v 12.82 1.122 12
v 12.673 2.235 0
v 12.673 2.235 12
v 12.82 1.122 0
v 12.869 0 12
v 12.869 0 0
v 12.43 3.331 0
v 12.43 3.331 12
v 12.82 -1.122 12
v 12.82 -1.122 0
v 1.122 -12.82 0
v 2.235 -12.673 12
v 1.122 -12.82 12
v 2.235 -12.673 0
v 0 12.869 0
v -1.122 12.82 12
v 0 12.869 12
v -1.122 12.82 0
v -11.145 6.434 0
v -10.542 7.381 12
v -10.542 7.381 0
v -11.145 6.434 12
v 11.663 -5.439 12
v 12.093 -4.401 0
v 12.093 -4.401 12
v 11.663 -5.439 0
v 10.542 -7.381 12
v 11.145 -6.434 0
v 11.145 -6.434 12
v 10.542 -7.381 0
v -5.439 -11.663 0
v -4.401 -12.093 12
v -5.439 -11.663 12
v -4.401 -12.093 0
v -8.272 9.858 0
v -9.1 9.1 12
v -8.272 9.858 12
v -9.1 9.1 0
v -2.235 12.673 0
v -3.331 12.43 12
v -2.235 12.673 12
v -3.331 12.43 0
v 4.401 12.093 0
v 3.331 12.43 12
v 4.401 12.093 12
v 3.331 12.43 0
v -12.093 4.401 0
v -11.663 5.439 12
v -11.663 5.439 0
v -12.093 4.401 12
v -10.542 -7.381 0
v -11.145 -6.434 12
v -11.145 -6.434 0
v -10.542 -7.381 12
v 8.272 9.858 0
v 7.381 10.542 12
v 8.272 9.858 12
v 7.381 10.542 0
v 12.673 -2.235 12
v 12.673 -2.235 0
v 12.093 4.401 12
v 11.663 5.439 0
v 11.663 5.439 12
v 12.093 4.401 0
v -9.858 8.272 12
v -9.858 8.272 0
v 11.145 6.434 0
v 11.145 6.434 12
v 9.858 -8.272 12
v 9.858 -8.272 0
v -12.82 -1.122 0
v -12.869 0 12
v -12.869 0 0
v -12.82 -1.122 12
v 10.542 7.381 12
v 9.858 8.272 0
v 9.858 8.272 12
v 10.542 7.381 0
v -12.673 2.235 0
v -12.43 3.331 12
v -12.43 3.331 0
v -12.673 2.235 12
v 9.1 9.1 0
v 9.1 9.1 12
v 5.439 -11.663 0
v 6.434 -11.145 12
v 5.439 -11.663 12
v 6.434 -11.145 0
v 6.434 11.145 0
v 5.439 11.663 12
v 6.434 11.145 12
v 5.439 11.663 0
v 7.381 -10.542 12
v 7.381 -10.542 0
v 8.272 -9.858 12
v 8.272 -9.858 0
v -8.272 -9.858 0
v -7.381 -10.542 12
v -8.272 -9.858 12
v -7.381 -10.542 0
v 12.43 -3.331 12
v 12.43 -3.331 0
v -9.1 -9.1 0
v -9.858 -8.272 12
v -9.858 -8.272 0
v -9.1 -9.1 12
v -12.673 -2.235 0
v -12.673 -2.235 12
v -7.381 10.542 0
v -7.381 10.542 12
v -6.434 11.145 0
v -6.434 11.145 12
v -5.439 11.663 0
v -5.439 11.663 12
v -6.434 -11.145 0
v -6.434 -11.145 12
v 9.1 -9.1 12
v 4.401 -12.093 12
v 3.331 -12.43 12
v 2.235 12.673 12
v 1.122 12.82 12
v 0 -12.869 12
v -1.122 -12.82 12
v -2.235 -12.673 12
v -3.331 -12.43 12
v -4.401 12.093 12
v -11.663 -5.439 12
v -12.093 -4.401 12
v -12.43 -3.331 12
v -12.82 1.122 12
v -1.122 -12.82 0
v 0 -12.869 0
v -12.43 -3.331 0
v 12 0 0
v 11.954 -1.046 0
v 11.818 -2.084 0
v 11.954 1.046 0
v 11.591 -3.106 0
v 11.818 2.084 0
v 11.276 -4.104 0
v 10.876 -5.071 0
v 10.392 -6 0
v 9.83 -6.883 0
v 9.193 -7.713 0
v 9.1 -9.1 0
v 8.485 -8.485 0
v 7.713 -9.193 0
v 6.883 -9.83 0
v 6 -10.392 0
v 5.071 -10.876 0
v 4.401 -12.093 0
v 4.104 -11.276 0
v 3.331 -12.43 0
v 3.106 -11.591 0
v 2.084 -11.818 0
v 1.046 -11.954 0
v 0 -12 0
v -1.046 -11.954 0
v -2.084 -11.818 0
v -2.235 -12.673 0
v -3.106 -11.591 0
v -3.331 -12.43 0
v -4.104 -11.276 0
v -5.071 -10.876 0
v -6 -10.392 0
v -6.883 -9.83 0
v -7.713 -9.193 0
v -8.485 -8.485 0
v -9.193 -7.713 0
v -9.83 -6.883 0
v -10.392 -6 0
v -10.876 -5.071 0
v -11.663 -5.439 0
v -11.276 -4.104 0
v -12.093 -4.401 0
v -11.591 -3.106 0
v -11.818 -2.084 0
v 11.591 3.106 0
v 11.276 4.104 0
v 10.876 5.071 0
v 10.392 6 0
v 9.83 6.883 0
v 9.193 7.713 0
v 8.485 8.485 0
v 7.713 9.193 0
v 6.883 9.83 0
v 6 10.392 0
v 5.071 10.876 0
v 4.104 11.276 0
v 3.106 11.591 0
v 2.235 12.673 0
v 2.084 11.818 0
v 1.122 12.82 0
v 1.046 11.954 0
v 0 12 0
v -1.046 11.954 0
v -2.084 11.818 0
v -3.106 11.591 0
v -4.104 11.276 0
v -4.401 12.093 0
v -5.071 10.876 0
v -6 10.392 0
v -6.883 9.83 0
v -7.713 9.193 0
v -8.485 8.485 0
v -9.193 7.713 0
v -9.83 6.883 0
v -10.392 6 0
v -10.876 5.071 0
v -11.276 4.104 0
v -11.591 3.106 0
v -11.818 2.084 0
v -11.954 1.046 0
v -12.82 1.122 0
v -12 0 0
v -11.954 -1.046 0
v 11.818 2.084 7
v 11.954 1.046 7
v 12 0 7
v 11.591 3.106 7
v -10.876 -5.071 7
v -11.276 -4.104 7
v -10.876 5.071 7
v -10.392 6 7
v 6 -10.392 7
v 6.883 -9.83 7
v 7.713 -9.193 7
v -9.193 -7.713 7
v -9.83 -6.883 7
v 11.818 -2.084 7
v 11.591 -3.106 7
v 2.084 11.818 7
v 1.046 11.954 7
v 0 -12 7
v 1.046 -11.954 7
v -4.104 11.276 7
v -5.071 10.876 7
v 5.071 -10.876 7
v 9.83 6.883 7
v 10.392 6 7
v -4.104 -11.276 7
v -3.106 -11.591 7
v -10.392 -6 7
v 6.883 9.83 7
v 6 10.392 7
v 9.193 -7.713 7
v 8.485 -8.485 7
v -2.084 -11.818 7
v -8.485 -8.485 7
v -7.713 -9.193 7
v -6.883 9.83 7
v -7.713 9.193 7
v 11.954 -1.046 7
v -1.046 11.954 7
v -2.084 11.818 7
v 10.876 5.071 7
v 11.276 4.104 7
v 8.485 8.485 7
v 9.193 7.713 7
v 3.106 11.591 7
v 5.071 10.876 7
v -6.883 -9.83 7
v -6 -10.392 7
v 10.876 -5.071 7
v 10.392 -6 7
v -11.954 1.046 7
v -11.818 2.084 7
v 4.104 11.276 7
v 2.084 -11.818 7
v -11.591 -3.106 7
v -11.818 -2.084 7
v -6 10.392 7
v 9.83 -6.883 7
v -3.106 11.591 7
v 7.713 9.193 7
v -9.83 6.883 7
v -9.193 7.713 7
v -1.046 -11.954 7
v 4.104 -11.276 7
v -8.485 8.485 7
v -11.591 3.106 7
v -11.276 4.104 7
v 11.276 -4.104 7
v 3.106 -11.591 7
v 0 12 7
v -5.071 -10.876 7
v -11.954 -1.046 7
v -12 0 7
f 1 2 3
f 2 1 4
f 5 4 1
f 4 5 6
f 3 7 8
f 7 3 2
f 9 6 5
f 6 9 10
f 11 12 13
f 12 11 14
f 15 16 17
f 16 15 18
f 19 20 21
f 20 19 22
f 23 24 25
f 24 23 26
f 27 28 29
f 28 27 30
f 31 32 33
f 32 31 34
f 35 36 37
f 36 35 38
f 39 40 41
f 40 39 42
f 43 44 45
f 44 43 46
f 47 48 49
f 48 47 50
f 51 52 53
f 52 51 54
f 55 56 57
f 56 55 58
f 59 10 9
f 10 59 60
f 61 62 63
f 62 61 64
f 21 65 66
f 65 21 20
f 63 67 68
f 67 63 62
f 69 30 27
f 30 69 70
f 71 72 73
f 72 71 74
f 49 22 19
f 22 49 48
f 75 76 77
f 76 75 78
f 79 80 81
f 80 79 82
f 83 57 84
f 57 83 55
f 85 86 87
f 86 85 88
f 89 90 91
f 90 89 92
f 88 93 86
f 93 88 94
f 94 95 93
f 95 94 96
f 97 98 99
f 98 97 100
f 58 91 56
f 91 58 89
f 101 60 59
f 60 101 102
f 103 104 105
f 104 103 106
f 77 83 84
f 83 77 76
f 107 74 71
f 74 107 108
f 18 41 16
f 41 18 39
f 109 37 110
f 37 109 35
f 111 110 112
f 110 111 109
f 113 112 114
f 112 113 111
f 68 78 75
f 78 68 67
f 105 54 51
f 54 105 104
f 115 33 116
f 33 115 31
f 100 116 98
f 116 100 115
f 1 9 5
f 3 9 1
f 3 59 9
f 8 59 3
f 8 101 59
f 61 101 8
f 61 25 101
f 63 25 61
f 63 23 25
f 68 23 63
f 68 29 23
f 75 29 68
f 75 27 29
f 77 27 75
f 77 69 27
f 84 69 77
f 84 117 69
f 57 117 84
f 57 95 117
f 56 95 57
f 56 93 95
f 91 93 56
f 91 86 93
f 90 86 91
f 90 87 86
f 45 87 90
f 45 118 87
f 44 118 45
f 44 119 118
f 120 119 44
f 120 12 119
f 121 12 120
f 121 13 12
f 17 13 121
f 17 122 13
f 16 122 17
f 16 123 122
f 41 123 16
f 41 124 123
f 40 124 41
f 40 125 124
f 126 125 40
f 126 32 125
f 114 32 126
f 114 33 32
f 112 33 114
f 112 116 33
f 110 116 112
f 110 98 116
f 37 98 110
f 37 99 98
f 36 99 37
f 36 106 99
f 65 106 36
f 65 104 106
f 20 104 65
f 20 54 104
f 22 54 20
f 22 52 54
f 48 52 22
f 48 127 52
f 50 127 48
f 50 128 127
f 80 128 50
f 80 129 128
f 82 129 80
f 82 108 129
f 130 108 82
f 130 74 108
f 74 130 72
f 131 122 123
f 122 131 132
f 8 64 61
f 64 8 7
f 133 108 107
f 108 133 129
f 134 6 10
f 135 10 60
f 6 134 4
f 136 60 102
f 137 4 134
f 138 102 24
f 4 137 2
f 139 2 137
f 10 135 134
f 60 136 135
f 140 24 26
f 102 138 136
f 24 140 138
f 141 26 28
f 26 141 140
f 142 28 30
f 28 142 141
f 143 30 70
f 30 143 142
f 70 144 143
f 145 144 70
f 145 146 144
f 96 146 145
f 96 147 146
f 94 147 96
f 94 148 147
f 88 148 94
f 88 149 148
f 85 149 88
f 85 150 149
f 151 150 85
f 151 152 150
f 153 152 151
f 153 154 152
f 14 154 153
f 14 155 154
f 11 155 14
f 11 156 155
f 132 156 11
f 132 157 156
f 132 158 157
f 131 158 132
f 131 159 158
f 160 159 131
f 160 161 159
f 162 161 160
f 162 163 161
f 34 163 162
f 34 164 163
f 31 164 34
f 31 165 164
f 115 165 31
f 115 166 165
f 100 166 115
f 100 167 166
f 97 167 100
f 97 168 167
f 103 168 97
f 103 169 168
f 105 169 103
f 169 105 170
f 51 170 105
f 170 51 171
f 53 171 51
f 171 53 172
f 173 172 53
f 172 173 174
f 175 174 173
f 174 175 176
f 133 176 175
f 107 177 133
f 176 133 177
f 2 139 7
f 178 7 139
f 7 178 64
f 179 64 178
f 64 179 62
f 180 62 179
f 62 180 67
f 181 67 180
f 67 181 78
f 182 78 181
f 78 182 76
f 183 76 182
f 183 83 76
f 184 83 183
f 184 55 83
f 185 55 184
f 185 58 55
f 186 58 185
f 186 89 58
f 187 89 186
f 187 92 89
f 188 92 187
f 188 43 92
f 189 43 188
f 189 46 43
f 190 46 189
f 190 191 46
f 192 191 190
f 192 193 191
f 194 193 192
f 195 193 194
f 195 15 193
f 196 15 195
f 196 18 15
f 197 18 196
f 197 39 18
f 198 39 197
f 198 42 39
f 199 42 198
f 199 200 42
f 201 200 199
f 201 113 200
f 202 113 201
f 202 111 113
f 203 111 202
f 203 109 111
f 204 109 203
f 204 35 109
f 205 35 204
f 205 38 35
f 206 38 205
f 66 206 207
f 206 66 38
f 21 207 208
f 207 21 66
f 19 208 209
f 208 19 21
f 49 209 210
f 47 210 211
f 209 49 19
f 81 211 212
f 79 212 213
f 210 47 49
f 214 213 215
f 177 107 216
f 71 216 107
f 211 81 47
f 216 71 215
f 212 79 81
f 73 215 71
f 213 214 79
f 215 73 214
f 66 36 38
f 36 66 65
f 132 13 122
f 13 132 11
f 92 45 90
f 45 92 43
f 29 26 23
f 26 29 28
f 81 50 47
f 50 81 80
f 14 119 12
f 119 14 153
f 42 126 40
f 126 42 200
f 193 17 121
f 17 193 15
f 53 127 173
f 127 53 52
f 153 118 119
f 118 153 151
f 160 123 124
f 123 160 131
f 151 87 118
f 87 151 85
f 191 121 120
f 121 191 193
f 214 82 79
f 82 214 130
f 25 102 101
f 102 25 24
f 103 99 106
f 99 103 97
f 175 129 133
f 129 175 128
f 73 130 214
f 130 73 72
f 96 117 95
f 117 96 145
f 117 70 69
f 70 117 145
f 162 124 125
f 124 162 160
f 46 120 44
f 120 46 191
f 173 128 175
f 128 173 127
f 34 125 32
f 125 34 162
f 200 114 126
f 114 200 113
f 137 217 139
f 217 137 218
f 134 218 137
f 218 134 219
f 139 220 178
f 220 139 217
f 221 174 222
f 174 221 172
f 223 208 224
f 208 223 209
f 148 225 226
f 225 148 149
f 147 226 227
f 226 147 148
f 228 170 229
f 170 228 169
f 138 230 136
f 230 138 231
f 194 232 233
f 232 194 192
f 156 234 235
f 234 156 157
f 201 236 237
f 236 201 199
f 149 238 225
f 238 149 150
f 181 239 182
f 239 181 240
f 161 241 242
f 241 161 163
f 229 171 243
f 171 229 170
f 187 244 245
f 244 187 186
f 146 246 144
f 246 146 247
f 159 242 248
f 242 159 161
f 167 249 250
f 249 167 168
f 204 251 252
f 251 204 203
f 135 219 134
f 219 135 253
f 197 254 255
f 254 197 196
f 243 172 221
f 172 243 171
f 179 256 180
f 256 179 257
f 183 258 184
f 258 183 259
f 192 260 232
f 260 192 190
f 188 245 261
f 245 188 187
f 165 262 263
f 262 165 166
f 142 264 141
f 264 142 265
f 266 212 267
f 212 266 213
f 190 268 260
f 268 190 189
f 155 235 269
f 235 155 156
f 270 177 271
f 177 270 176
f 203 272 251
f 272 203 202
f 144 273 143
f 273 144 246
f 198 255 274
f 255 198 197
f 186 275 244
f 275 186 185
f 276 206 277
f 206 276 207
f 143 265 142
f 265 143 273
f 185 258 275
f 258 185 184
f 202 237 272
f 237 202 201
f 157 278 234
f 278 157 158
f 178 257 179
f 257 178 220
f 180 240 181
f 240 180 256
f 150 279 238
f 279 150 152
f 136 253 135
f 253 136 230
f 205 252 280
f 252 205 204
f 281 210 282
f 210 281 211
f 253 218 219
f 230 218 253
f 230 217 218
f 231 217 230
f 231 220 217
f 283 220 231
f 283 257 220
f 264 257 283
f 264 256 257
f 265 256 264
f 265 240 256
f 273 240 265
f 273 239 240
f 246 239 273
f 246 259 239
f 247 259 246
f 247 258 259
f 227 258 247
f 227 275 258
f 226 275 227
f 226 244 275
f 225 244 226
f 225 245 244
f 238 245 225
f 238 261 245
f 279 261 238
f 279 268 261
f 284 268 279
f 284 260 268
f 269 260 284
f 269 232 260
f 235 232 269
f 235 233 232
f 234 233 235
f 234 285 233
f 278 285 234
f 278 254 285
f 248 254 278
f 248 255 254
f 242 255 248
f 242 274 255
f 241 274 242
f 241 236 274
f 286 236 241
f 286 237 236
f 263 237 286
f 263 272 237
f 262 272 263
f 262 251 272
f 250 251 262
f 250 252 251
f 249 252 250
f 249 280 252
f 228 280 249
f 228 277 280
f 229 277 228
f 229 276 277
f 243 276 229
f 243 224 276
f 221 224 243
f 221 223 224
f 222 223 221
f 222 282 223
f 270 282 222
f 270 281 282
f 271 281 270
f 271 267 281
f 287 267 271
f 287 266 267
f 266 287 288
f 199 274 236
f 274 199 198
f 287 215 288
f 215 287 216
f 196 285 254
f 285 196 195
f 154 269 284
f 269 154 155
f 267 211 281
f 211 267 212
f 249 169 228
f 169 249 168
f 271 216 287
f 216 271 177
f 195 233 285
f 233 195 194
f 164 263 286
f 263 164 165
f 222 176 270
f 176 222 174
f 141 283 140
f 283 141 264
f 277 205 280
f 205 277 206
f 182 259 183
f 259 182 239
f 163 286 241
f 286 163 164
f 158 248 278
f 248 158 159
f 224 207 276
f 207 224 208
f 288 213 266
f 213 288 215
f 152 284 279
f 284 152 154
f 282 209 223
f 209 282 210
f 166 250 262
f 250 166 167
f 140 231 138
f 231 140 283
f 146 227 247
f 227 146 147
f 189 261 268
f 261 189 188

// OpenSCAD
rod_width = 24;
rod_extender_width = 2;
rod_extender_extend_len = 5;
rod_extender_cross_len  = 7;

filament_thickness = 1.75;
anti_warp = .15;

$fs = $preview ? 2 : 0.5;
$fa = $preview ? 15 : 5;

function anti_warp_widen(v) = v + ((filament_thickness * anti_warp));
function anti_warp_shrink(v) = v - ((filament_thickness * anti_warp));

module inner_cyl(height) {
	assert(height > 0);
	cylinder(h = height, d = rod_width);
}

module outer_cyl(height) {
	assert(height > 0);
	cylinder(h = height, d = anti_warp_shrink(rod_width + rod_extender_width));
}

module tube_wall(height) {
	assert(height > 0);
	difference() {
		outer_cyl(height);
		inner_cyl(height);
	}
}

module outer_wall(height) {
	assert(height > 0);
	difference() {
		cylinder(h = height, d = tube_outer_dia + rod_width * 2);
		outer_cyl(height);
	}
}

module main() {
	difference() {
		outer_cyl(rod_extender_cross_len + rod_extender_extend_len);
		inner_cyl(rod_extender_cross_len);
	}
}

main();
